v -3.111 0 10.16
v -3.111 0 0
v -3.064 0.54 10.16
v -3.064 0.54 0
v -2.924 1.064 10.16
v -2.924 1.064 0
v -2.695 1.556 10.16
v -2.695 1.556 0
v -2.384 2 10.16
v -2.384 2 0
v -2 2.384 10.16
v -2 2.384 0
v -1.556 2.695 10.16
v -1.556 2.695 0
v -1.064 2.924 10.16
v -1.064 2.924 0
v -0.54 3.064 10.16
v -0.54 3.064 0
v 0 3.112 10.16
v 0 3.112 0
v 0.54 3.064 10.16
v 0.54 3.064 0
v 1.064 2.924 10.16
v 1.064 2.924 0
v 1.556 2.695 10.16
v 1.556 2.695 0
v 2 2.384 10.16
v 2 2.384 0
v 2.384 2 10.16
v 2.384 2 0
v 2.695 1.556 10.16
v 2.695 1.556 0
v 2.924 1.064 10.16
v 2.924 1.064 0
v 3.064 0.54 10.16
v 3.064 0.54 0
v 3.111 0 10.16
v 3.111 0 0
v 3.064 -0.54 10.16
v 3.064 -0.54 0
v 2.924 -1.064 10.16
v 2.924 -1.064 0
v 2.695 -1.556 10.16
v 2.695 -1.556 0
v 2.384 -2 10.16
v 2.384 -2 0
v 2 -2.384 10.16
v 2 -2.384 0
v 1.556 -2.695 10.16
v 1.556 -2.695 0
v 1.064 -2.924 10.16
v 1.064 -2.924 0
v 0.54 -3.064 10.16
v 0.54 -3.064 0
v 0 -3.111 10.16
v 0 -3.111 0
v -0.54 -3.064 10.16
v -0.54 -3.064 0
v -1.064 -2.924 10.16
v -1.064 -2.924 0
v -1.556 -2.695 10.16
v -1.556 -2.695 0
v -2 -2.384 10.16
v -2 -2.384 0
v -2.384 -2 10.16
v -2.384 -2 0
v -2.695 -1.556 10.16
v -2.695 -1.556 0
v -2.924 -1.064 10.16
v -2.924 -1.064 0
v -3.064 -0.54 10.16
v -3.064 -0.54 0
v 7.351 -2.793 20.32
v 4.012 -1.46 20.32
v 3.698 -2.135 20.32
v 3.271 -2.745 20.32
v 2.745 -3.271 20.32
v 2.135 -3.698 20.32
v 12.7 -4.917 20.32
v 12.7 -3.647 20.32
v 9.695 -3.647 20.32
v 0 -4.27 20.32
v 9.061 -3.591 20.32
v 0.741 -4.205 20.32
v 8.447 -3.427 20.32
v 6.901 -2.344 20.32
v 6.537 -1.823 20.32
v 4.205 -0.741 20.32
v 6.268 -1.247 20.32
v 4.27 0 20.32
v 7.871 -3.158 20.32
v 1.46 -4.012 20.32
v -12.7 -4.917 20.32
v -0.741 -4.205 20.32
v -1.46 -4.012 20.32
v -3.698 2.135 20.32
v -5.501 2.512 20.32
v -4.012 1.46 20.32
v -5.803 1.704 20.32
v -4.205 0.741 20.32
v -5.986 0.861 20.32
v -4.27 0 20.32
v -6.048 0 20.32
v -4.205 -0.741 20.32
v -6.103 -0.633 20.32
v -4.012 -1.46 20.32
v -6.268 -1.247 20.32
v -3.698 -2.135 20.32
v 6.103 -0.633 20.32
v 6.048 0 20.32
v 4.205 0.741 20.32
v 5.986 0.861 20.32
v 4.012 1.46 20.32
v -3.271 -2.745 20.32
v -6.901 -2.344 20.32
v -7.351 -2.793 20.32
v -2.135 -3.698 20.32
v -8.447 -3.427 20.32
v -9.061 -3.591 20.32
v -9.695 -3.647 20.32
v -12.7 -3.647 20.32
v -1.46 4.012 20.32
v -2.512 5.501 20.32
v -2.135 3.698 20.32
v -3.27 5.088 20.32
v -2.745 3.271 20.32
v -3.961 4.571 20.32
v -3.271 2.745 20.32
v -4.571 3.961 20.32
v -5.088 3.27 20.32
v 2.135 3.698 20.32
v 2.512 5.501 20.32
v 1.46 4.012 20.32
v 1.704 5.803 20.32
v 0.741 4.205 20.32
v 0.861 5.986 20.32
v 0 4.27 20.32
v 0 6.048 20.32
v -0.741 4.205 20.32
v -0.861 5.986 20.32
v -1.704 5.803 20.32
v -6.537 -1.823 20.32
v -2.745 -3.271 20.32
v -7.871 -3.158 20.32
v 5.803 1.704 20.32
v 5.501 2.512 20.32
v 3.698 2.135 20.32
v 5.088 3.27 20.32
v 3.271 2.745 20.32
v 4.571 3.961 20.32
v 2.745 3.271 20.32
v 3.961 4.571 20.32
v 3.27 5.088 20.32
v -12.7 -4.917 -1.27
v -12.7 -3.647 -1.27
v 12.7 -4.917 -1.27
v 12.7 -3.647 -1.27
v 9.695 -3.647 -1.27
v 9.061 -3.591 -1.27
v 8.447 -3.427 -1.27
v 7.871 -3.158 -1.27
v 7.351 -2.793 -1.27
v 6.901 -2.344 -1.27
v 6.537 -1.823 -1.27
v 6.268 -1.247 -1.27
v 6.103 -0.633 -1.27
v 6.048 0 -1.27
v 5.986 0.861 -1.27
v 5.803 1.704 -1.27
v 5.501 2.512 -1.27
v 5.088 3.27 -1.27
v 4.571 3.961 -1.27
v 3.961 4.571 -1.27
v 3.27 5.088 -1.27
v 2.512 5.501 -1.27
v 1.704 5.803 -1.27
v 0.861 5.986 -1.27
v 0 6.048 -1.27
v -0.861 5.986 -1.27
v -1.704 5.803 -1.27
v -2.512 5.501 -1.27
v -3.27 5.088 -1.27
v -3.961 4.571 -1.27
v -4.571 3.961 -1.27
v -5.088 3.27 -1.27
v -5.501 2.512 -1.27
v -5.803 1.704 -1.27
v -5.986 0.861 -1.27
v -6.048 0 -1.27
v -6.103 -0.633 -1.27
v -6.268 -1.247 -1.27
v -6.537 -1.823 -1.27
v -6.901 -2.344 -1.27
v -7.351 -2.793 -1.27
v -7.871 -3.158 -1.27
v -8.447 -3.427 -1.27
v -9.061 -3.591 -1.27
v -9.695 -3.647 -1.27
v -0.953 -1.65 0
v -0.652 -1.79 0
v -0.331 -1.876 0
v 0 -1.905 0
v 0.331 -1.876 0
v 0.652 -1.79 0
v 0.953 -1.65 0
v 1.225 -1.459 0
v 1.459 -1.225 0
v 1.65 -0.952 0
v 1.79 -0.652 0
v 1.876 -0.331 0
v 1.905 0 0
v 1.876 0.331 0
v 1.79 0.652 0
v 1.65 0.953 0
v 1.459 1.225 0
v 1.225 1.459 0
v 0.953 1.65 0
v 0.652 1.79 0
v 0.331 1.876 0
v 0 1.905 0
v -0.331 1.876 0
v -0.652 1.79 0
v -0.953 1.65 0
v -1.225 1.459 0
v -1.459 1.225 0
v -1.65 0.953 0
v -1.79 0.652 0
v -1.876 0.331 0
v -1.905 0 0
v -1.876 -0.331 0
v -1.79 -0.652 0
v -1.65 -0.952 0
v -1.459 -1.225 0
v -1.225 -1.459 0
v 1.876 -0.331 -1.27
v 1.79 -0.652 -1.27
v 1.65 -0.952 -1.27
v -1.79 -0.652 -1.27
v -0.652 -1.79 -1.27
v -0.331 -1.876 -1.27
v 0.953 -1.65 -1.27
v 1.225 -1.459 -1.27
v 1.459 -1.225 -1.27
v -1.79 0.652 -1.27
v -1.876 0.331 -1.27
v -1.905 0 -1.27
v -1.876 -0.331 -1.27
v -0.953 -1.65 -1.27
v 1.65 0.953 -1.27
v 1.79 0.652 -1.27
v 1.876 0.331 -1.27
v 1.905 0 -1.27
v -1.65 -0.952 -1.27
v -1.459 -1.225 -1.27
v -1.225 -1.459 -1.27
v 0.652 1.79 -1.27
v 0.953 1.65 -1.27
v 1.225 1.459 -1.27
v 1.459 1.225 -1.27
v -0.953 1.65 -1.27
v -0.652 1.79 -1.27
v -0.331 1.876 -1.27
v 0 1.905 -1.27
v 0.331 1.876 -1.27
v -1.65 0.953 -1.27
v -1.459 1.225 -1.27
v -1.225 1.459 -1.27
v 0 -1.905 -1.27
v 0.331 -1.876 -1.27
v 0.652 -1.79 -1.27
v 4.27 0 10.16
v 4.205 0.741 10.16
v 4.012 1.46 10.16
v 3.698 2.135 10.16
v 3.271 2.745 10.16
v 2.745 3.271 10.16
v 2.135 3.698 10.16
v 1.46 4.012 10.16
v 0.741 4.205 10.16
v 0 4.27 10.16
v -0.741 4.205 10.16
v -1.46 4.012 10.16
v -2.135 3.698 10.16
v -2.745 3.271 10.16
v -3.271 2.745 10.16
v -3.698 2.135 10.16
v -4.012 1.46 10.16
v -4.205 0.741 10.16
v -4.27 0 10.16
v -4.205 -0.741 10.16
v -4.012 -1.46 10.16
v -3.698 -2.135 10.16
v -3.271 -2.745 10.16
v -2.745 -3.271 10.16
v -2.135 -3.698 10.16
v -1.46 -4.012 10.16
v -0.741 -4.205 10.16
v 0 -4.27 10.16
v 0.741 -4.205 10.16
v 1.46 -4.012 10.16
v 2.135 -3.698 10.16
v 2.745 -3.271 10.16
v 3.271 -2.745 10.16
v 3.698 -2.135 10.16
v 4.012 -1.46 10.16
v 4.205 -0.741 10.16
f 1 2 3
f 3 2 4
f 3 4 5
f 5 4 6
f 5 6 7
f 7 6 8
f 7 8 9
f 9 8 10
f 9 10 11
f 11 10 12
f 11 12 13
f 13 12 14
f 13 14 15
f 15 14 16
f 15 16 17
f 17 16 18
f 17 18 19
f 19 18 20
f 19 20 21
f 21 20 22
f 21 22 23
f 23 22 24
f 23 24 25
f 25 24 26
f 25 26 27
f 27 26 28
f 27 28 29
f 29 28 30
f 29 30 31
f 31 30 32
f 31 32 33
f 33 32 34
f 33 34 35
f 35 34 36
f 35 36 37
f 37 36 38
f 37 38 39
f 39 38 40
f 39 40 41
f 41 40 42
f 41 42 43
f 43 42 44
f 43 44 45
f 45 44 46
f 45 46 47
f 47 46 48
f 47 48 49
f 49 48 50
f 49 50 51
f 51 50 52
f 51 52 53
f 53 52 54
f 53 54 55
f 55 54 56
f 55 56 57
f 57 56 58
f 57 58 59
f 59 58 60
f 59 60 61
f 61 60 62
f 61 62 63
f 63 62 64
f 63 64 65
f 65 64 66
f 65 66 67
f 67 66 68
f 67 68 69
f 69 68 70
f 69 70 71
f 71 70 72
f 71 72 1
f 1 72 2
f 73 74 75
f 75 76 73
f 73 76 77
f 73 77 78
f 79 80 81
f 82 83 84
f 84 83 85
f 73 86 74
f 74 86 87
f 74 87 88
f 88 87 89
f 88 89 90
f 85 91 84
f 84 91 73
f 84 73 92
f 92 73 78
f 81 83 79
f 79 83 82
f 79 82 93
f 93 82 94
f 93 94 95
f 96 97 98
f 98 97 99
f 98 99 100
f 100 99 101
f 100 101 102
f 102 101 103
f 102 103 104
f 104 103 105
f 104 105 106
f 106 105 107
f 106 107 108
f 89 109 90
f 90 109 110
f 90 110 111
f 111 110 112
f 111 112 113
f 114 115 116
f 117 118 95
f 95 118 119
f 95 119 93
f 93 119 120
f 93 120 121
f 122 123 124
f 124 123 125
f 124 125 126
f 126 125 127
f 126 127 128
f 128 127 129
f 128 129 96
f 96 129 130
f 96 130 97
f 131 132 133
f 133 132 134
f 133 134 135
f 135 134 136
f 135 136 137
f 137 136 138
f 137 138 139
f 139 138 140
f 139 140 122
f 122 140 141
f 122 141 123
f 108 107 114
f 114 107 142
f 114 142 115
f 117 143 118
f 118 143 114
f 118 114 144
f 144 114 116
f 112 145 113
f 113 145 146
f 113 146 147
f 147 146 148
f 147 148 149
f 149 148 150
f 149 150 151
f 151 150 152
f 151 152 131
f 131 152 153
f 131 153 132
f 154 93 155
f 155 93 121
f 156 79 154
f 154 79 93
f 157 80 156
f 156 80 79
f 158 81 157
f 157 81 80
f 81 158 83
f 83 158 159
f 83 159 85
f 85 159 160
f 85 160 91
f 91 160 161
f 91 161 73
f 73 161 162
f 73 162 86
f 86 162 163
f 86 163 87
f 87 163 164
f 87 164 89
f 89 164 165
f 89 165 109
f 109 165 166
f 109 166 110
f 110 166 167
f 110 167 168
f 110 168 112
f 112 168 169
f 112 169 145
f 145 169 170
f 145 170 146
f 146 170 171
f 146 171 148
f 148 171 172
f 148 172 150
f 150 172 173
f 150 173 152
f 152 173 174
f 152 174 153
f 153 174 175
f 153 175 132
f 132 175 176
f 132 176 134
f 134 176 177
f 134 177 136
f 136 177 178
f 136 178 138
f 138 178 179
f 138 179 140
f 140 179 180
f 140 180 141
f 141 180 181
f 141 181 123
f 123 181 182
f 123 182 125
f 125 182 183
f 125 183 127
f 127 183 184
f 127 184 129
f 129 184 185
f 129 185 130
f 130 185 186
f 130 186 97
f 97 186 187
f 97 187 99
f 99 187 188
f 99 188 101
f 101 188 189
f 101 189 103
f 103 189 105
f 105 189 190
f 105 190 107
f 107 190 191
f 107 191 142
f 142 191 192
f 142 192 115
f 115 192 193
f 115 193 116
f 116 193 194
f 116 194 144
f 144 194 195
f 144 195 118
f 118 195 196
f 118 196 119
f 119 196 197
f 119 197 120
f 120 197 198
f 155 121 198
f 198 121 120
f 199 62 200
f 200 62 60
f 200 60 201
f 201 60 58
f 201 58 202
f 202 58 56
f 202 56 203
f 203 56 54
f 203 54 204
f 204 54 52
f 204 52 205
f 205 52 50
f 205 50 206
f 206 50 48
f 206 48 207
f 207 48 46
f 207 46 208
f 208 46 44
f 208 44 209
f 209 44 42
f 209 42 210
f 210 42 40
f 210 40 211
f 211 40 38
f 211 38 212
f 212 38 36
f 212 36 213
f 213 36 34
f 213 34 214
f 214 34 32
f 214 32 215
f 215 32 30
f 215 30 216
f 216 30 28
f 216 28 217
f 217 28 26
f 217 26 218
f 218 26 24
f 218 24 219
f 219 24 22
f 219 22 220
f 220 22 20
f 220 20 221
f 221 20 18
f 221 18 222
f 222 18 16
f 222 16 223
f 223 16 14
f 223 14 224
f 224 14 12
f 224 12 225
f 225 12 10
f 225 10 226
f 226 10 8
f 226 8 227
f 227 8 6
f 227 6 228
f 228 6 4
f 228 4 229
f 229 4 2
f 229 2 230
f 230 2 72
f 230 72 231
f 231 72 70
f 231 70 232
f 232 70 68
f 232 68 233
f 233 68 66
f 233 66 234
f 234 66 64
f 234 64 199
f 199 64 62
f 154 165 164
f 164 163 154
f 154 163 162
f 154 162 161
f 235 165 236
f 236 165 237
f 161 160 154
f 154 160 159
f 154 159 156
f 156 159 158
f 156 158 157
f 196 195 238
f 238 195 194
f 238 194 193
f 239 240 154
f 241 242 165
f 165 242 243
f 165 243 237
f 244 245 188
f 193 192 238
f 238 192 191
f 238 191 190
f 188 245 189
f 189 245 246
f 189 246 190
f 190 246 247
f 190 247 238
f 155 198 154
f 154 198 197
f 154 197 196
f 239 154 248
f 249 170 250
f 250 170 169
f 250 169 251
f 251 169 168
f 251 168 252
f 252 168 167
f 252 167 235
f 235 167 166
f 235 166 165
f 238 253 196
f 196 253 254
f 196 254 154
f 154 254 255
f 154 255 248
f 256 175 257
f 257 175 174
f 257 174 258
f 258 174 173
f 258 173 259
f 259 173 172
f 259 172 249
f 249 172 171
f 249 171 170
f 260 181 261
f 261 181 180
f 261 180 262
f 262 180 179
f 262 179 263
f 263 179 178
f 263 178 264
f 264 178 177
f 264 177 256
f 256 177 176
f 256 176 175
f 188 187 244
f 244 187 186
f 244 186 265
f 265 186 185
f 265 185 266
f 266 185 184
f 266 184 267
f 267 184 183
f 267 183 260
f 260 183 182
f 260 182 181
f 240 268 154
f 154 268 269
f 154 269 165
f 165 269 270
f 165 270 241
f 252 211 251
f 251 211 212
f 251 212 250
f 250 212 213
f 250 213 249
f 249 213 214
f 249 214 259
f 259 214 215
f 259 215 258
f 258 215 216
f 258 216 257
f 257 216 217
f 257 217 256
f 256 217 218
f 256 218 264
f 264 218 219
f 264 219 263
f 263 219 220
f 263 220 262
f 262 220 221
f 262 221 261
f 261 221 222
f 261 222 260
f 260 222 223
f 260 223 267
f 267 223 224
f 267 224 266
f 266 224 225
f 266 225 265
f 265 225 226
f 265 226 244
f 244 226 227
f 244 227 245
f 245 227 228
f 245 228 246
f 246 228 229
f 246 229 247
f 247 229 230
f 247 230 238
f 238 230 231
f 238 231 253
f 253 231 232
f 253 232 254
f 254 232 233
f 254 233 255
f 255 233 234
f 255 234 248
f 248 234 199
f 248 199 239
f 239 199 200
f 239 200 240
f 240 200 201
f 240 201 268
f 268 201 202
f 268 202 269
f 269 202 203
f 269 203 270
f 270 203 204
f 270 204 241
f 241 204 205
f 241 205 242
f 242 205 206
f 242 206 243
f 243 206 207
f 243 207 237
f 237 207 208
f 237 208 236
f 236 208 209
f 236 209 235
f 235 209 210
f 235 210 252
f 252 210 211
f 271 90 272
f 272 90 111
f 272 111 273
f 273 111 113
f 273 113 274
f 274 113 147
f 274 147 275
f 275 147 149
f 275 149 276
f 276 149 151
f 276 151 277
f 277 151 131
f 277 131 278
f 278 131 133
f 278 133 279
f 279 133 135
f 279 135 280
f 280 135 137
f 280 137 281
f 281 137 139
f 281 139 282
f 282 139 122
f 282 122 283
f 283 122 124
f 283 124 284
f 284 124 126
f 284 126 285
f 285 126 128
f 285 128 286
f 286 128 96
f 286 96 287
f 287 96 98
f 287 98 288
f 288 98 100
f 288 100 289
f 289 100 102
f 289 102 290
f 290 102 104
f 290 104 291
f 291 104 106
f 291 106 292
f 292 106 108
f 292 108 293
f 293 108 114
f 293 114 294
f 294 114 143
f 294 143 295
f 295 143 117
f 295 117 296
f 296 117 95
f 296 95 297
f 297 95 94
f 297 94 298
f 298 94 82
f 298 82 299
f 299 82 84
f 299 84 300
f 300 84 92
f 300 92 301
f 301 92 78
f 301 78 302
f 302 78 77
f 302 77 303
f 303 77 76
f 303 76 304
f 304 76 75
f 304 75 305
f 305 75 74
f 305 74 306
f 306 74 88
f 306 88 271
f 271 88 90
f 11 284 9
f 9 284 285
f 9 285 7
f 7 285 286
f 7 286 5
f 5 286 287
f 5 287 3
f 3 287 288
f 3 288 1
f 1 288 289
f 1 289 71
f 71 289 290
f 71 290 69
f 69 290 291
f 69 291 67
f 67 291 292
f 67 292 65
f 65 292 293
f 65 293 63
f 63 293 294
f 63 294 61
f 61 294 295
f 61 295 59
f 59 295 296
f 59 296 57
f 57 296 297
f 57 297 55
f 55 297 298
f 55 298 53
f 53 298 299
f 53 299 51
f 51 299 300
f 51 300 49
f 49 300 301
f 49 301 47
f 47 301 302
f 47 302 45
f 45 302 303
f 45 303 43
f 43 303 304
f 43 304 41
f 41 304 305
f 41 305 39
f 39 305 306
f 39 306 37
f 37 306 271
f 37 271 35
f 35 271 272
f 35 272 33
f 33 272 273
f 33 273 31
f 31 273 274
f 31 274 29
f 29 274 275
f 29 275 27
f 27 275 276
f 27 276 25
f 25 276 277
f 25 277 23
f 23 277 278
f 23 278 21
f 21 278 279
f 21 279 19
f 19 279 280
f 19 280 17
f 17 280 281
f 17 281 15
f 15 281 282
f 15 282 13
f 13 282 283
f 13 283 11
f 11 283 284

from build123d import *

# Parameters (mm, degrees)
SKETCH1_R           = 3.1115
BOSS_EXTRUDE1_DEPTH = 20.32
SKETCH2_R           = 1.905
BOSS_EXTRUDE2_DEPTH = 1.27
SKETCH3_R           = 4.27
CUT_EXTRUDE1_DEPTH  = 10.16


with BuildPart() as part:
    # Sketch1 → Boss-Extrude1 (new body)
    with BuildSketch(Plane.XY):
        with BuildLine():
            Line((-9.694539288, -3.646539288), (-12.7, -3.646539288))
            Line((-12.7, -3.646539288), (-12.7, -4.916539288))
            Line((-12.7, -4.916539288), (12.7, -4.916539288))
            Line((12.7, -4.916539288), (12.7, -3.646539288))
            Line((12.7, -3.646539288), (9.694539288, -3.646539288))
            ThreePointArc((9.694539288, -3.646539288), (7.11604663, -2.578492658), (6.048, 0))
            ThreePointArc((6.048, 0), (0, 6.048), (-6.048, 0))
            ThreePointArc((-6.048, 0), (-7.11604663, -2.578492658), (-9.694539288, -3.646539288))
        make_face()
        Circle(SKETCH1_R, mode=Mode.SUBTRACT)
    extrude(amount=BOSS_EXTRUDE1_DEPTH)

    # Sketch2 → Boss-Extrude2 (add)
    with BuildSketch(Plane(origin=(0, 0, 0), x_dir=(-1, 0, 0), z_dir=(0, 0, -1))):
        with BuildLine():
            Line((12.7, -4.916539288), (12.7, -3.646539288))
            Line((12.7, -3.646539288), (9.694539288, -3.646539288))
            ThreePointArc((9.694539288, -3.646539288), (7.11604663, -2.578492658), (6.048, 0))
            ThreePointArc((6.048, 0), (0, 6.048), (-6.048, 0))
            ThreePointArc((-6.048, 0), (-7.11604663, -2.578492658), (-9.694539288, -3.646539288))
            Line((-9.694539288, -3.646539288), (-12.7, -3.646539288))
            Line((-12.7, -3.646539288), (-12.7, -4.916539288))
            Line((-12.7, -4.916539288), (12.7, -4.916539288))
        make_face()
        Circle(SKETCH2_R, mode=Mode.SUBTRACT)
    extrude(amount=BOSS_EXTRUDE2_DEPTH)

    # Sketch3 → Cut-Extrude1 (cut)
    with BuildSketch(Plane.XY.offset(20.32)):
        Circle(SKETCH3_R)
    extrude(amount=-CUT_EXTRUDE1_DEPTH, mode=Mode.SUBTRACT)


solid = part.part
